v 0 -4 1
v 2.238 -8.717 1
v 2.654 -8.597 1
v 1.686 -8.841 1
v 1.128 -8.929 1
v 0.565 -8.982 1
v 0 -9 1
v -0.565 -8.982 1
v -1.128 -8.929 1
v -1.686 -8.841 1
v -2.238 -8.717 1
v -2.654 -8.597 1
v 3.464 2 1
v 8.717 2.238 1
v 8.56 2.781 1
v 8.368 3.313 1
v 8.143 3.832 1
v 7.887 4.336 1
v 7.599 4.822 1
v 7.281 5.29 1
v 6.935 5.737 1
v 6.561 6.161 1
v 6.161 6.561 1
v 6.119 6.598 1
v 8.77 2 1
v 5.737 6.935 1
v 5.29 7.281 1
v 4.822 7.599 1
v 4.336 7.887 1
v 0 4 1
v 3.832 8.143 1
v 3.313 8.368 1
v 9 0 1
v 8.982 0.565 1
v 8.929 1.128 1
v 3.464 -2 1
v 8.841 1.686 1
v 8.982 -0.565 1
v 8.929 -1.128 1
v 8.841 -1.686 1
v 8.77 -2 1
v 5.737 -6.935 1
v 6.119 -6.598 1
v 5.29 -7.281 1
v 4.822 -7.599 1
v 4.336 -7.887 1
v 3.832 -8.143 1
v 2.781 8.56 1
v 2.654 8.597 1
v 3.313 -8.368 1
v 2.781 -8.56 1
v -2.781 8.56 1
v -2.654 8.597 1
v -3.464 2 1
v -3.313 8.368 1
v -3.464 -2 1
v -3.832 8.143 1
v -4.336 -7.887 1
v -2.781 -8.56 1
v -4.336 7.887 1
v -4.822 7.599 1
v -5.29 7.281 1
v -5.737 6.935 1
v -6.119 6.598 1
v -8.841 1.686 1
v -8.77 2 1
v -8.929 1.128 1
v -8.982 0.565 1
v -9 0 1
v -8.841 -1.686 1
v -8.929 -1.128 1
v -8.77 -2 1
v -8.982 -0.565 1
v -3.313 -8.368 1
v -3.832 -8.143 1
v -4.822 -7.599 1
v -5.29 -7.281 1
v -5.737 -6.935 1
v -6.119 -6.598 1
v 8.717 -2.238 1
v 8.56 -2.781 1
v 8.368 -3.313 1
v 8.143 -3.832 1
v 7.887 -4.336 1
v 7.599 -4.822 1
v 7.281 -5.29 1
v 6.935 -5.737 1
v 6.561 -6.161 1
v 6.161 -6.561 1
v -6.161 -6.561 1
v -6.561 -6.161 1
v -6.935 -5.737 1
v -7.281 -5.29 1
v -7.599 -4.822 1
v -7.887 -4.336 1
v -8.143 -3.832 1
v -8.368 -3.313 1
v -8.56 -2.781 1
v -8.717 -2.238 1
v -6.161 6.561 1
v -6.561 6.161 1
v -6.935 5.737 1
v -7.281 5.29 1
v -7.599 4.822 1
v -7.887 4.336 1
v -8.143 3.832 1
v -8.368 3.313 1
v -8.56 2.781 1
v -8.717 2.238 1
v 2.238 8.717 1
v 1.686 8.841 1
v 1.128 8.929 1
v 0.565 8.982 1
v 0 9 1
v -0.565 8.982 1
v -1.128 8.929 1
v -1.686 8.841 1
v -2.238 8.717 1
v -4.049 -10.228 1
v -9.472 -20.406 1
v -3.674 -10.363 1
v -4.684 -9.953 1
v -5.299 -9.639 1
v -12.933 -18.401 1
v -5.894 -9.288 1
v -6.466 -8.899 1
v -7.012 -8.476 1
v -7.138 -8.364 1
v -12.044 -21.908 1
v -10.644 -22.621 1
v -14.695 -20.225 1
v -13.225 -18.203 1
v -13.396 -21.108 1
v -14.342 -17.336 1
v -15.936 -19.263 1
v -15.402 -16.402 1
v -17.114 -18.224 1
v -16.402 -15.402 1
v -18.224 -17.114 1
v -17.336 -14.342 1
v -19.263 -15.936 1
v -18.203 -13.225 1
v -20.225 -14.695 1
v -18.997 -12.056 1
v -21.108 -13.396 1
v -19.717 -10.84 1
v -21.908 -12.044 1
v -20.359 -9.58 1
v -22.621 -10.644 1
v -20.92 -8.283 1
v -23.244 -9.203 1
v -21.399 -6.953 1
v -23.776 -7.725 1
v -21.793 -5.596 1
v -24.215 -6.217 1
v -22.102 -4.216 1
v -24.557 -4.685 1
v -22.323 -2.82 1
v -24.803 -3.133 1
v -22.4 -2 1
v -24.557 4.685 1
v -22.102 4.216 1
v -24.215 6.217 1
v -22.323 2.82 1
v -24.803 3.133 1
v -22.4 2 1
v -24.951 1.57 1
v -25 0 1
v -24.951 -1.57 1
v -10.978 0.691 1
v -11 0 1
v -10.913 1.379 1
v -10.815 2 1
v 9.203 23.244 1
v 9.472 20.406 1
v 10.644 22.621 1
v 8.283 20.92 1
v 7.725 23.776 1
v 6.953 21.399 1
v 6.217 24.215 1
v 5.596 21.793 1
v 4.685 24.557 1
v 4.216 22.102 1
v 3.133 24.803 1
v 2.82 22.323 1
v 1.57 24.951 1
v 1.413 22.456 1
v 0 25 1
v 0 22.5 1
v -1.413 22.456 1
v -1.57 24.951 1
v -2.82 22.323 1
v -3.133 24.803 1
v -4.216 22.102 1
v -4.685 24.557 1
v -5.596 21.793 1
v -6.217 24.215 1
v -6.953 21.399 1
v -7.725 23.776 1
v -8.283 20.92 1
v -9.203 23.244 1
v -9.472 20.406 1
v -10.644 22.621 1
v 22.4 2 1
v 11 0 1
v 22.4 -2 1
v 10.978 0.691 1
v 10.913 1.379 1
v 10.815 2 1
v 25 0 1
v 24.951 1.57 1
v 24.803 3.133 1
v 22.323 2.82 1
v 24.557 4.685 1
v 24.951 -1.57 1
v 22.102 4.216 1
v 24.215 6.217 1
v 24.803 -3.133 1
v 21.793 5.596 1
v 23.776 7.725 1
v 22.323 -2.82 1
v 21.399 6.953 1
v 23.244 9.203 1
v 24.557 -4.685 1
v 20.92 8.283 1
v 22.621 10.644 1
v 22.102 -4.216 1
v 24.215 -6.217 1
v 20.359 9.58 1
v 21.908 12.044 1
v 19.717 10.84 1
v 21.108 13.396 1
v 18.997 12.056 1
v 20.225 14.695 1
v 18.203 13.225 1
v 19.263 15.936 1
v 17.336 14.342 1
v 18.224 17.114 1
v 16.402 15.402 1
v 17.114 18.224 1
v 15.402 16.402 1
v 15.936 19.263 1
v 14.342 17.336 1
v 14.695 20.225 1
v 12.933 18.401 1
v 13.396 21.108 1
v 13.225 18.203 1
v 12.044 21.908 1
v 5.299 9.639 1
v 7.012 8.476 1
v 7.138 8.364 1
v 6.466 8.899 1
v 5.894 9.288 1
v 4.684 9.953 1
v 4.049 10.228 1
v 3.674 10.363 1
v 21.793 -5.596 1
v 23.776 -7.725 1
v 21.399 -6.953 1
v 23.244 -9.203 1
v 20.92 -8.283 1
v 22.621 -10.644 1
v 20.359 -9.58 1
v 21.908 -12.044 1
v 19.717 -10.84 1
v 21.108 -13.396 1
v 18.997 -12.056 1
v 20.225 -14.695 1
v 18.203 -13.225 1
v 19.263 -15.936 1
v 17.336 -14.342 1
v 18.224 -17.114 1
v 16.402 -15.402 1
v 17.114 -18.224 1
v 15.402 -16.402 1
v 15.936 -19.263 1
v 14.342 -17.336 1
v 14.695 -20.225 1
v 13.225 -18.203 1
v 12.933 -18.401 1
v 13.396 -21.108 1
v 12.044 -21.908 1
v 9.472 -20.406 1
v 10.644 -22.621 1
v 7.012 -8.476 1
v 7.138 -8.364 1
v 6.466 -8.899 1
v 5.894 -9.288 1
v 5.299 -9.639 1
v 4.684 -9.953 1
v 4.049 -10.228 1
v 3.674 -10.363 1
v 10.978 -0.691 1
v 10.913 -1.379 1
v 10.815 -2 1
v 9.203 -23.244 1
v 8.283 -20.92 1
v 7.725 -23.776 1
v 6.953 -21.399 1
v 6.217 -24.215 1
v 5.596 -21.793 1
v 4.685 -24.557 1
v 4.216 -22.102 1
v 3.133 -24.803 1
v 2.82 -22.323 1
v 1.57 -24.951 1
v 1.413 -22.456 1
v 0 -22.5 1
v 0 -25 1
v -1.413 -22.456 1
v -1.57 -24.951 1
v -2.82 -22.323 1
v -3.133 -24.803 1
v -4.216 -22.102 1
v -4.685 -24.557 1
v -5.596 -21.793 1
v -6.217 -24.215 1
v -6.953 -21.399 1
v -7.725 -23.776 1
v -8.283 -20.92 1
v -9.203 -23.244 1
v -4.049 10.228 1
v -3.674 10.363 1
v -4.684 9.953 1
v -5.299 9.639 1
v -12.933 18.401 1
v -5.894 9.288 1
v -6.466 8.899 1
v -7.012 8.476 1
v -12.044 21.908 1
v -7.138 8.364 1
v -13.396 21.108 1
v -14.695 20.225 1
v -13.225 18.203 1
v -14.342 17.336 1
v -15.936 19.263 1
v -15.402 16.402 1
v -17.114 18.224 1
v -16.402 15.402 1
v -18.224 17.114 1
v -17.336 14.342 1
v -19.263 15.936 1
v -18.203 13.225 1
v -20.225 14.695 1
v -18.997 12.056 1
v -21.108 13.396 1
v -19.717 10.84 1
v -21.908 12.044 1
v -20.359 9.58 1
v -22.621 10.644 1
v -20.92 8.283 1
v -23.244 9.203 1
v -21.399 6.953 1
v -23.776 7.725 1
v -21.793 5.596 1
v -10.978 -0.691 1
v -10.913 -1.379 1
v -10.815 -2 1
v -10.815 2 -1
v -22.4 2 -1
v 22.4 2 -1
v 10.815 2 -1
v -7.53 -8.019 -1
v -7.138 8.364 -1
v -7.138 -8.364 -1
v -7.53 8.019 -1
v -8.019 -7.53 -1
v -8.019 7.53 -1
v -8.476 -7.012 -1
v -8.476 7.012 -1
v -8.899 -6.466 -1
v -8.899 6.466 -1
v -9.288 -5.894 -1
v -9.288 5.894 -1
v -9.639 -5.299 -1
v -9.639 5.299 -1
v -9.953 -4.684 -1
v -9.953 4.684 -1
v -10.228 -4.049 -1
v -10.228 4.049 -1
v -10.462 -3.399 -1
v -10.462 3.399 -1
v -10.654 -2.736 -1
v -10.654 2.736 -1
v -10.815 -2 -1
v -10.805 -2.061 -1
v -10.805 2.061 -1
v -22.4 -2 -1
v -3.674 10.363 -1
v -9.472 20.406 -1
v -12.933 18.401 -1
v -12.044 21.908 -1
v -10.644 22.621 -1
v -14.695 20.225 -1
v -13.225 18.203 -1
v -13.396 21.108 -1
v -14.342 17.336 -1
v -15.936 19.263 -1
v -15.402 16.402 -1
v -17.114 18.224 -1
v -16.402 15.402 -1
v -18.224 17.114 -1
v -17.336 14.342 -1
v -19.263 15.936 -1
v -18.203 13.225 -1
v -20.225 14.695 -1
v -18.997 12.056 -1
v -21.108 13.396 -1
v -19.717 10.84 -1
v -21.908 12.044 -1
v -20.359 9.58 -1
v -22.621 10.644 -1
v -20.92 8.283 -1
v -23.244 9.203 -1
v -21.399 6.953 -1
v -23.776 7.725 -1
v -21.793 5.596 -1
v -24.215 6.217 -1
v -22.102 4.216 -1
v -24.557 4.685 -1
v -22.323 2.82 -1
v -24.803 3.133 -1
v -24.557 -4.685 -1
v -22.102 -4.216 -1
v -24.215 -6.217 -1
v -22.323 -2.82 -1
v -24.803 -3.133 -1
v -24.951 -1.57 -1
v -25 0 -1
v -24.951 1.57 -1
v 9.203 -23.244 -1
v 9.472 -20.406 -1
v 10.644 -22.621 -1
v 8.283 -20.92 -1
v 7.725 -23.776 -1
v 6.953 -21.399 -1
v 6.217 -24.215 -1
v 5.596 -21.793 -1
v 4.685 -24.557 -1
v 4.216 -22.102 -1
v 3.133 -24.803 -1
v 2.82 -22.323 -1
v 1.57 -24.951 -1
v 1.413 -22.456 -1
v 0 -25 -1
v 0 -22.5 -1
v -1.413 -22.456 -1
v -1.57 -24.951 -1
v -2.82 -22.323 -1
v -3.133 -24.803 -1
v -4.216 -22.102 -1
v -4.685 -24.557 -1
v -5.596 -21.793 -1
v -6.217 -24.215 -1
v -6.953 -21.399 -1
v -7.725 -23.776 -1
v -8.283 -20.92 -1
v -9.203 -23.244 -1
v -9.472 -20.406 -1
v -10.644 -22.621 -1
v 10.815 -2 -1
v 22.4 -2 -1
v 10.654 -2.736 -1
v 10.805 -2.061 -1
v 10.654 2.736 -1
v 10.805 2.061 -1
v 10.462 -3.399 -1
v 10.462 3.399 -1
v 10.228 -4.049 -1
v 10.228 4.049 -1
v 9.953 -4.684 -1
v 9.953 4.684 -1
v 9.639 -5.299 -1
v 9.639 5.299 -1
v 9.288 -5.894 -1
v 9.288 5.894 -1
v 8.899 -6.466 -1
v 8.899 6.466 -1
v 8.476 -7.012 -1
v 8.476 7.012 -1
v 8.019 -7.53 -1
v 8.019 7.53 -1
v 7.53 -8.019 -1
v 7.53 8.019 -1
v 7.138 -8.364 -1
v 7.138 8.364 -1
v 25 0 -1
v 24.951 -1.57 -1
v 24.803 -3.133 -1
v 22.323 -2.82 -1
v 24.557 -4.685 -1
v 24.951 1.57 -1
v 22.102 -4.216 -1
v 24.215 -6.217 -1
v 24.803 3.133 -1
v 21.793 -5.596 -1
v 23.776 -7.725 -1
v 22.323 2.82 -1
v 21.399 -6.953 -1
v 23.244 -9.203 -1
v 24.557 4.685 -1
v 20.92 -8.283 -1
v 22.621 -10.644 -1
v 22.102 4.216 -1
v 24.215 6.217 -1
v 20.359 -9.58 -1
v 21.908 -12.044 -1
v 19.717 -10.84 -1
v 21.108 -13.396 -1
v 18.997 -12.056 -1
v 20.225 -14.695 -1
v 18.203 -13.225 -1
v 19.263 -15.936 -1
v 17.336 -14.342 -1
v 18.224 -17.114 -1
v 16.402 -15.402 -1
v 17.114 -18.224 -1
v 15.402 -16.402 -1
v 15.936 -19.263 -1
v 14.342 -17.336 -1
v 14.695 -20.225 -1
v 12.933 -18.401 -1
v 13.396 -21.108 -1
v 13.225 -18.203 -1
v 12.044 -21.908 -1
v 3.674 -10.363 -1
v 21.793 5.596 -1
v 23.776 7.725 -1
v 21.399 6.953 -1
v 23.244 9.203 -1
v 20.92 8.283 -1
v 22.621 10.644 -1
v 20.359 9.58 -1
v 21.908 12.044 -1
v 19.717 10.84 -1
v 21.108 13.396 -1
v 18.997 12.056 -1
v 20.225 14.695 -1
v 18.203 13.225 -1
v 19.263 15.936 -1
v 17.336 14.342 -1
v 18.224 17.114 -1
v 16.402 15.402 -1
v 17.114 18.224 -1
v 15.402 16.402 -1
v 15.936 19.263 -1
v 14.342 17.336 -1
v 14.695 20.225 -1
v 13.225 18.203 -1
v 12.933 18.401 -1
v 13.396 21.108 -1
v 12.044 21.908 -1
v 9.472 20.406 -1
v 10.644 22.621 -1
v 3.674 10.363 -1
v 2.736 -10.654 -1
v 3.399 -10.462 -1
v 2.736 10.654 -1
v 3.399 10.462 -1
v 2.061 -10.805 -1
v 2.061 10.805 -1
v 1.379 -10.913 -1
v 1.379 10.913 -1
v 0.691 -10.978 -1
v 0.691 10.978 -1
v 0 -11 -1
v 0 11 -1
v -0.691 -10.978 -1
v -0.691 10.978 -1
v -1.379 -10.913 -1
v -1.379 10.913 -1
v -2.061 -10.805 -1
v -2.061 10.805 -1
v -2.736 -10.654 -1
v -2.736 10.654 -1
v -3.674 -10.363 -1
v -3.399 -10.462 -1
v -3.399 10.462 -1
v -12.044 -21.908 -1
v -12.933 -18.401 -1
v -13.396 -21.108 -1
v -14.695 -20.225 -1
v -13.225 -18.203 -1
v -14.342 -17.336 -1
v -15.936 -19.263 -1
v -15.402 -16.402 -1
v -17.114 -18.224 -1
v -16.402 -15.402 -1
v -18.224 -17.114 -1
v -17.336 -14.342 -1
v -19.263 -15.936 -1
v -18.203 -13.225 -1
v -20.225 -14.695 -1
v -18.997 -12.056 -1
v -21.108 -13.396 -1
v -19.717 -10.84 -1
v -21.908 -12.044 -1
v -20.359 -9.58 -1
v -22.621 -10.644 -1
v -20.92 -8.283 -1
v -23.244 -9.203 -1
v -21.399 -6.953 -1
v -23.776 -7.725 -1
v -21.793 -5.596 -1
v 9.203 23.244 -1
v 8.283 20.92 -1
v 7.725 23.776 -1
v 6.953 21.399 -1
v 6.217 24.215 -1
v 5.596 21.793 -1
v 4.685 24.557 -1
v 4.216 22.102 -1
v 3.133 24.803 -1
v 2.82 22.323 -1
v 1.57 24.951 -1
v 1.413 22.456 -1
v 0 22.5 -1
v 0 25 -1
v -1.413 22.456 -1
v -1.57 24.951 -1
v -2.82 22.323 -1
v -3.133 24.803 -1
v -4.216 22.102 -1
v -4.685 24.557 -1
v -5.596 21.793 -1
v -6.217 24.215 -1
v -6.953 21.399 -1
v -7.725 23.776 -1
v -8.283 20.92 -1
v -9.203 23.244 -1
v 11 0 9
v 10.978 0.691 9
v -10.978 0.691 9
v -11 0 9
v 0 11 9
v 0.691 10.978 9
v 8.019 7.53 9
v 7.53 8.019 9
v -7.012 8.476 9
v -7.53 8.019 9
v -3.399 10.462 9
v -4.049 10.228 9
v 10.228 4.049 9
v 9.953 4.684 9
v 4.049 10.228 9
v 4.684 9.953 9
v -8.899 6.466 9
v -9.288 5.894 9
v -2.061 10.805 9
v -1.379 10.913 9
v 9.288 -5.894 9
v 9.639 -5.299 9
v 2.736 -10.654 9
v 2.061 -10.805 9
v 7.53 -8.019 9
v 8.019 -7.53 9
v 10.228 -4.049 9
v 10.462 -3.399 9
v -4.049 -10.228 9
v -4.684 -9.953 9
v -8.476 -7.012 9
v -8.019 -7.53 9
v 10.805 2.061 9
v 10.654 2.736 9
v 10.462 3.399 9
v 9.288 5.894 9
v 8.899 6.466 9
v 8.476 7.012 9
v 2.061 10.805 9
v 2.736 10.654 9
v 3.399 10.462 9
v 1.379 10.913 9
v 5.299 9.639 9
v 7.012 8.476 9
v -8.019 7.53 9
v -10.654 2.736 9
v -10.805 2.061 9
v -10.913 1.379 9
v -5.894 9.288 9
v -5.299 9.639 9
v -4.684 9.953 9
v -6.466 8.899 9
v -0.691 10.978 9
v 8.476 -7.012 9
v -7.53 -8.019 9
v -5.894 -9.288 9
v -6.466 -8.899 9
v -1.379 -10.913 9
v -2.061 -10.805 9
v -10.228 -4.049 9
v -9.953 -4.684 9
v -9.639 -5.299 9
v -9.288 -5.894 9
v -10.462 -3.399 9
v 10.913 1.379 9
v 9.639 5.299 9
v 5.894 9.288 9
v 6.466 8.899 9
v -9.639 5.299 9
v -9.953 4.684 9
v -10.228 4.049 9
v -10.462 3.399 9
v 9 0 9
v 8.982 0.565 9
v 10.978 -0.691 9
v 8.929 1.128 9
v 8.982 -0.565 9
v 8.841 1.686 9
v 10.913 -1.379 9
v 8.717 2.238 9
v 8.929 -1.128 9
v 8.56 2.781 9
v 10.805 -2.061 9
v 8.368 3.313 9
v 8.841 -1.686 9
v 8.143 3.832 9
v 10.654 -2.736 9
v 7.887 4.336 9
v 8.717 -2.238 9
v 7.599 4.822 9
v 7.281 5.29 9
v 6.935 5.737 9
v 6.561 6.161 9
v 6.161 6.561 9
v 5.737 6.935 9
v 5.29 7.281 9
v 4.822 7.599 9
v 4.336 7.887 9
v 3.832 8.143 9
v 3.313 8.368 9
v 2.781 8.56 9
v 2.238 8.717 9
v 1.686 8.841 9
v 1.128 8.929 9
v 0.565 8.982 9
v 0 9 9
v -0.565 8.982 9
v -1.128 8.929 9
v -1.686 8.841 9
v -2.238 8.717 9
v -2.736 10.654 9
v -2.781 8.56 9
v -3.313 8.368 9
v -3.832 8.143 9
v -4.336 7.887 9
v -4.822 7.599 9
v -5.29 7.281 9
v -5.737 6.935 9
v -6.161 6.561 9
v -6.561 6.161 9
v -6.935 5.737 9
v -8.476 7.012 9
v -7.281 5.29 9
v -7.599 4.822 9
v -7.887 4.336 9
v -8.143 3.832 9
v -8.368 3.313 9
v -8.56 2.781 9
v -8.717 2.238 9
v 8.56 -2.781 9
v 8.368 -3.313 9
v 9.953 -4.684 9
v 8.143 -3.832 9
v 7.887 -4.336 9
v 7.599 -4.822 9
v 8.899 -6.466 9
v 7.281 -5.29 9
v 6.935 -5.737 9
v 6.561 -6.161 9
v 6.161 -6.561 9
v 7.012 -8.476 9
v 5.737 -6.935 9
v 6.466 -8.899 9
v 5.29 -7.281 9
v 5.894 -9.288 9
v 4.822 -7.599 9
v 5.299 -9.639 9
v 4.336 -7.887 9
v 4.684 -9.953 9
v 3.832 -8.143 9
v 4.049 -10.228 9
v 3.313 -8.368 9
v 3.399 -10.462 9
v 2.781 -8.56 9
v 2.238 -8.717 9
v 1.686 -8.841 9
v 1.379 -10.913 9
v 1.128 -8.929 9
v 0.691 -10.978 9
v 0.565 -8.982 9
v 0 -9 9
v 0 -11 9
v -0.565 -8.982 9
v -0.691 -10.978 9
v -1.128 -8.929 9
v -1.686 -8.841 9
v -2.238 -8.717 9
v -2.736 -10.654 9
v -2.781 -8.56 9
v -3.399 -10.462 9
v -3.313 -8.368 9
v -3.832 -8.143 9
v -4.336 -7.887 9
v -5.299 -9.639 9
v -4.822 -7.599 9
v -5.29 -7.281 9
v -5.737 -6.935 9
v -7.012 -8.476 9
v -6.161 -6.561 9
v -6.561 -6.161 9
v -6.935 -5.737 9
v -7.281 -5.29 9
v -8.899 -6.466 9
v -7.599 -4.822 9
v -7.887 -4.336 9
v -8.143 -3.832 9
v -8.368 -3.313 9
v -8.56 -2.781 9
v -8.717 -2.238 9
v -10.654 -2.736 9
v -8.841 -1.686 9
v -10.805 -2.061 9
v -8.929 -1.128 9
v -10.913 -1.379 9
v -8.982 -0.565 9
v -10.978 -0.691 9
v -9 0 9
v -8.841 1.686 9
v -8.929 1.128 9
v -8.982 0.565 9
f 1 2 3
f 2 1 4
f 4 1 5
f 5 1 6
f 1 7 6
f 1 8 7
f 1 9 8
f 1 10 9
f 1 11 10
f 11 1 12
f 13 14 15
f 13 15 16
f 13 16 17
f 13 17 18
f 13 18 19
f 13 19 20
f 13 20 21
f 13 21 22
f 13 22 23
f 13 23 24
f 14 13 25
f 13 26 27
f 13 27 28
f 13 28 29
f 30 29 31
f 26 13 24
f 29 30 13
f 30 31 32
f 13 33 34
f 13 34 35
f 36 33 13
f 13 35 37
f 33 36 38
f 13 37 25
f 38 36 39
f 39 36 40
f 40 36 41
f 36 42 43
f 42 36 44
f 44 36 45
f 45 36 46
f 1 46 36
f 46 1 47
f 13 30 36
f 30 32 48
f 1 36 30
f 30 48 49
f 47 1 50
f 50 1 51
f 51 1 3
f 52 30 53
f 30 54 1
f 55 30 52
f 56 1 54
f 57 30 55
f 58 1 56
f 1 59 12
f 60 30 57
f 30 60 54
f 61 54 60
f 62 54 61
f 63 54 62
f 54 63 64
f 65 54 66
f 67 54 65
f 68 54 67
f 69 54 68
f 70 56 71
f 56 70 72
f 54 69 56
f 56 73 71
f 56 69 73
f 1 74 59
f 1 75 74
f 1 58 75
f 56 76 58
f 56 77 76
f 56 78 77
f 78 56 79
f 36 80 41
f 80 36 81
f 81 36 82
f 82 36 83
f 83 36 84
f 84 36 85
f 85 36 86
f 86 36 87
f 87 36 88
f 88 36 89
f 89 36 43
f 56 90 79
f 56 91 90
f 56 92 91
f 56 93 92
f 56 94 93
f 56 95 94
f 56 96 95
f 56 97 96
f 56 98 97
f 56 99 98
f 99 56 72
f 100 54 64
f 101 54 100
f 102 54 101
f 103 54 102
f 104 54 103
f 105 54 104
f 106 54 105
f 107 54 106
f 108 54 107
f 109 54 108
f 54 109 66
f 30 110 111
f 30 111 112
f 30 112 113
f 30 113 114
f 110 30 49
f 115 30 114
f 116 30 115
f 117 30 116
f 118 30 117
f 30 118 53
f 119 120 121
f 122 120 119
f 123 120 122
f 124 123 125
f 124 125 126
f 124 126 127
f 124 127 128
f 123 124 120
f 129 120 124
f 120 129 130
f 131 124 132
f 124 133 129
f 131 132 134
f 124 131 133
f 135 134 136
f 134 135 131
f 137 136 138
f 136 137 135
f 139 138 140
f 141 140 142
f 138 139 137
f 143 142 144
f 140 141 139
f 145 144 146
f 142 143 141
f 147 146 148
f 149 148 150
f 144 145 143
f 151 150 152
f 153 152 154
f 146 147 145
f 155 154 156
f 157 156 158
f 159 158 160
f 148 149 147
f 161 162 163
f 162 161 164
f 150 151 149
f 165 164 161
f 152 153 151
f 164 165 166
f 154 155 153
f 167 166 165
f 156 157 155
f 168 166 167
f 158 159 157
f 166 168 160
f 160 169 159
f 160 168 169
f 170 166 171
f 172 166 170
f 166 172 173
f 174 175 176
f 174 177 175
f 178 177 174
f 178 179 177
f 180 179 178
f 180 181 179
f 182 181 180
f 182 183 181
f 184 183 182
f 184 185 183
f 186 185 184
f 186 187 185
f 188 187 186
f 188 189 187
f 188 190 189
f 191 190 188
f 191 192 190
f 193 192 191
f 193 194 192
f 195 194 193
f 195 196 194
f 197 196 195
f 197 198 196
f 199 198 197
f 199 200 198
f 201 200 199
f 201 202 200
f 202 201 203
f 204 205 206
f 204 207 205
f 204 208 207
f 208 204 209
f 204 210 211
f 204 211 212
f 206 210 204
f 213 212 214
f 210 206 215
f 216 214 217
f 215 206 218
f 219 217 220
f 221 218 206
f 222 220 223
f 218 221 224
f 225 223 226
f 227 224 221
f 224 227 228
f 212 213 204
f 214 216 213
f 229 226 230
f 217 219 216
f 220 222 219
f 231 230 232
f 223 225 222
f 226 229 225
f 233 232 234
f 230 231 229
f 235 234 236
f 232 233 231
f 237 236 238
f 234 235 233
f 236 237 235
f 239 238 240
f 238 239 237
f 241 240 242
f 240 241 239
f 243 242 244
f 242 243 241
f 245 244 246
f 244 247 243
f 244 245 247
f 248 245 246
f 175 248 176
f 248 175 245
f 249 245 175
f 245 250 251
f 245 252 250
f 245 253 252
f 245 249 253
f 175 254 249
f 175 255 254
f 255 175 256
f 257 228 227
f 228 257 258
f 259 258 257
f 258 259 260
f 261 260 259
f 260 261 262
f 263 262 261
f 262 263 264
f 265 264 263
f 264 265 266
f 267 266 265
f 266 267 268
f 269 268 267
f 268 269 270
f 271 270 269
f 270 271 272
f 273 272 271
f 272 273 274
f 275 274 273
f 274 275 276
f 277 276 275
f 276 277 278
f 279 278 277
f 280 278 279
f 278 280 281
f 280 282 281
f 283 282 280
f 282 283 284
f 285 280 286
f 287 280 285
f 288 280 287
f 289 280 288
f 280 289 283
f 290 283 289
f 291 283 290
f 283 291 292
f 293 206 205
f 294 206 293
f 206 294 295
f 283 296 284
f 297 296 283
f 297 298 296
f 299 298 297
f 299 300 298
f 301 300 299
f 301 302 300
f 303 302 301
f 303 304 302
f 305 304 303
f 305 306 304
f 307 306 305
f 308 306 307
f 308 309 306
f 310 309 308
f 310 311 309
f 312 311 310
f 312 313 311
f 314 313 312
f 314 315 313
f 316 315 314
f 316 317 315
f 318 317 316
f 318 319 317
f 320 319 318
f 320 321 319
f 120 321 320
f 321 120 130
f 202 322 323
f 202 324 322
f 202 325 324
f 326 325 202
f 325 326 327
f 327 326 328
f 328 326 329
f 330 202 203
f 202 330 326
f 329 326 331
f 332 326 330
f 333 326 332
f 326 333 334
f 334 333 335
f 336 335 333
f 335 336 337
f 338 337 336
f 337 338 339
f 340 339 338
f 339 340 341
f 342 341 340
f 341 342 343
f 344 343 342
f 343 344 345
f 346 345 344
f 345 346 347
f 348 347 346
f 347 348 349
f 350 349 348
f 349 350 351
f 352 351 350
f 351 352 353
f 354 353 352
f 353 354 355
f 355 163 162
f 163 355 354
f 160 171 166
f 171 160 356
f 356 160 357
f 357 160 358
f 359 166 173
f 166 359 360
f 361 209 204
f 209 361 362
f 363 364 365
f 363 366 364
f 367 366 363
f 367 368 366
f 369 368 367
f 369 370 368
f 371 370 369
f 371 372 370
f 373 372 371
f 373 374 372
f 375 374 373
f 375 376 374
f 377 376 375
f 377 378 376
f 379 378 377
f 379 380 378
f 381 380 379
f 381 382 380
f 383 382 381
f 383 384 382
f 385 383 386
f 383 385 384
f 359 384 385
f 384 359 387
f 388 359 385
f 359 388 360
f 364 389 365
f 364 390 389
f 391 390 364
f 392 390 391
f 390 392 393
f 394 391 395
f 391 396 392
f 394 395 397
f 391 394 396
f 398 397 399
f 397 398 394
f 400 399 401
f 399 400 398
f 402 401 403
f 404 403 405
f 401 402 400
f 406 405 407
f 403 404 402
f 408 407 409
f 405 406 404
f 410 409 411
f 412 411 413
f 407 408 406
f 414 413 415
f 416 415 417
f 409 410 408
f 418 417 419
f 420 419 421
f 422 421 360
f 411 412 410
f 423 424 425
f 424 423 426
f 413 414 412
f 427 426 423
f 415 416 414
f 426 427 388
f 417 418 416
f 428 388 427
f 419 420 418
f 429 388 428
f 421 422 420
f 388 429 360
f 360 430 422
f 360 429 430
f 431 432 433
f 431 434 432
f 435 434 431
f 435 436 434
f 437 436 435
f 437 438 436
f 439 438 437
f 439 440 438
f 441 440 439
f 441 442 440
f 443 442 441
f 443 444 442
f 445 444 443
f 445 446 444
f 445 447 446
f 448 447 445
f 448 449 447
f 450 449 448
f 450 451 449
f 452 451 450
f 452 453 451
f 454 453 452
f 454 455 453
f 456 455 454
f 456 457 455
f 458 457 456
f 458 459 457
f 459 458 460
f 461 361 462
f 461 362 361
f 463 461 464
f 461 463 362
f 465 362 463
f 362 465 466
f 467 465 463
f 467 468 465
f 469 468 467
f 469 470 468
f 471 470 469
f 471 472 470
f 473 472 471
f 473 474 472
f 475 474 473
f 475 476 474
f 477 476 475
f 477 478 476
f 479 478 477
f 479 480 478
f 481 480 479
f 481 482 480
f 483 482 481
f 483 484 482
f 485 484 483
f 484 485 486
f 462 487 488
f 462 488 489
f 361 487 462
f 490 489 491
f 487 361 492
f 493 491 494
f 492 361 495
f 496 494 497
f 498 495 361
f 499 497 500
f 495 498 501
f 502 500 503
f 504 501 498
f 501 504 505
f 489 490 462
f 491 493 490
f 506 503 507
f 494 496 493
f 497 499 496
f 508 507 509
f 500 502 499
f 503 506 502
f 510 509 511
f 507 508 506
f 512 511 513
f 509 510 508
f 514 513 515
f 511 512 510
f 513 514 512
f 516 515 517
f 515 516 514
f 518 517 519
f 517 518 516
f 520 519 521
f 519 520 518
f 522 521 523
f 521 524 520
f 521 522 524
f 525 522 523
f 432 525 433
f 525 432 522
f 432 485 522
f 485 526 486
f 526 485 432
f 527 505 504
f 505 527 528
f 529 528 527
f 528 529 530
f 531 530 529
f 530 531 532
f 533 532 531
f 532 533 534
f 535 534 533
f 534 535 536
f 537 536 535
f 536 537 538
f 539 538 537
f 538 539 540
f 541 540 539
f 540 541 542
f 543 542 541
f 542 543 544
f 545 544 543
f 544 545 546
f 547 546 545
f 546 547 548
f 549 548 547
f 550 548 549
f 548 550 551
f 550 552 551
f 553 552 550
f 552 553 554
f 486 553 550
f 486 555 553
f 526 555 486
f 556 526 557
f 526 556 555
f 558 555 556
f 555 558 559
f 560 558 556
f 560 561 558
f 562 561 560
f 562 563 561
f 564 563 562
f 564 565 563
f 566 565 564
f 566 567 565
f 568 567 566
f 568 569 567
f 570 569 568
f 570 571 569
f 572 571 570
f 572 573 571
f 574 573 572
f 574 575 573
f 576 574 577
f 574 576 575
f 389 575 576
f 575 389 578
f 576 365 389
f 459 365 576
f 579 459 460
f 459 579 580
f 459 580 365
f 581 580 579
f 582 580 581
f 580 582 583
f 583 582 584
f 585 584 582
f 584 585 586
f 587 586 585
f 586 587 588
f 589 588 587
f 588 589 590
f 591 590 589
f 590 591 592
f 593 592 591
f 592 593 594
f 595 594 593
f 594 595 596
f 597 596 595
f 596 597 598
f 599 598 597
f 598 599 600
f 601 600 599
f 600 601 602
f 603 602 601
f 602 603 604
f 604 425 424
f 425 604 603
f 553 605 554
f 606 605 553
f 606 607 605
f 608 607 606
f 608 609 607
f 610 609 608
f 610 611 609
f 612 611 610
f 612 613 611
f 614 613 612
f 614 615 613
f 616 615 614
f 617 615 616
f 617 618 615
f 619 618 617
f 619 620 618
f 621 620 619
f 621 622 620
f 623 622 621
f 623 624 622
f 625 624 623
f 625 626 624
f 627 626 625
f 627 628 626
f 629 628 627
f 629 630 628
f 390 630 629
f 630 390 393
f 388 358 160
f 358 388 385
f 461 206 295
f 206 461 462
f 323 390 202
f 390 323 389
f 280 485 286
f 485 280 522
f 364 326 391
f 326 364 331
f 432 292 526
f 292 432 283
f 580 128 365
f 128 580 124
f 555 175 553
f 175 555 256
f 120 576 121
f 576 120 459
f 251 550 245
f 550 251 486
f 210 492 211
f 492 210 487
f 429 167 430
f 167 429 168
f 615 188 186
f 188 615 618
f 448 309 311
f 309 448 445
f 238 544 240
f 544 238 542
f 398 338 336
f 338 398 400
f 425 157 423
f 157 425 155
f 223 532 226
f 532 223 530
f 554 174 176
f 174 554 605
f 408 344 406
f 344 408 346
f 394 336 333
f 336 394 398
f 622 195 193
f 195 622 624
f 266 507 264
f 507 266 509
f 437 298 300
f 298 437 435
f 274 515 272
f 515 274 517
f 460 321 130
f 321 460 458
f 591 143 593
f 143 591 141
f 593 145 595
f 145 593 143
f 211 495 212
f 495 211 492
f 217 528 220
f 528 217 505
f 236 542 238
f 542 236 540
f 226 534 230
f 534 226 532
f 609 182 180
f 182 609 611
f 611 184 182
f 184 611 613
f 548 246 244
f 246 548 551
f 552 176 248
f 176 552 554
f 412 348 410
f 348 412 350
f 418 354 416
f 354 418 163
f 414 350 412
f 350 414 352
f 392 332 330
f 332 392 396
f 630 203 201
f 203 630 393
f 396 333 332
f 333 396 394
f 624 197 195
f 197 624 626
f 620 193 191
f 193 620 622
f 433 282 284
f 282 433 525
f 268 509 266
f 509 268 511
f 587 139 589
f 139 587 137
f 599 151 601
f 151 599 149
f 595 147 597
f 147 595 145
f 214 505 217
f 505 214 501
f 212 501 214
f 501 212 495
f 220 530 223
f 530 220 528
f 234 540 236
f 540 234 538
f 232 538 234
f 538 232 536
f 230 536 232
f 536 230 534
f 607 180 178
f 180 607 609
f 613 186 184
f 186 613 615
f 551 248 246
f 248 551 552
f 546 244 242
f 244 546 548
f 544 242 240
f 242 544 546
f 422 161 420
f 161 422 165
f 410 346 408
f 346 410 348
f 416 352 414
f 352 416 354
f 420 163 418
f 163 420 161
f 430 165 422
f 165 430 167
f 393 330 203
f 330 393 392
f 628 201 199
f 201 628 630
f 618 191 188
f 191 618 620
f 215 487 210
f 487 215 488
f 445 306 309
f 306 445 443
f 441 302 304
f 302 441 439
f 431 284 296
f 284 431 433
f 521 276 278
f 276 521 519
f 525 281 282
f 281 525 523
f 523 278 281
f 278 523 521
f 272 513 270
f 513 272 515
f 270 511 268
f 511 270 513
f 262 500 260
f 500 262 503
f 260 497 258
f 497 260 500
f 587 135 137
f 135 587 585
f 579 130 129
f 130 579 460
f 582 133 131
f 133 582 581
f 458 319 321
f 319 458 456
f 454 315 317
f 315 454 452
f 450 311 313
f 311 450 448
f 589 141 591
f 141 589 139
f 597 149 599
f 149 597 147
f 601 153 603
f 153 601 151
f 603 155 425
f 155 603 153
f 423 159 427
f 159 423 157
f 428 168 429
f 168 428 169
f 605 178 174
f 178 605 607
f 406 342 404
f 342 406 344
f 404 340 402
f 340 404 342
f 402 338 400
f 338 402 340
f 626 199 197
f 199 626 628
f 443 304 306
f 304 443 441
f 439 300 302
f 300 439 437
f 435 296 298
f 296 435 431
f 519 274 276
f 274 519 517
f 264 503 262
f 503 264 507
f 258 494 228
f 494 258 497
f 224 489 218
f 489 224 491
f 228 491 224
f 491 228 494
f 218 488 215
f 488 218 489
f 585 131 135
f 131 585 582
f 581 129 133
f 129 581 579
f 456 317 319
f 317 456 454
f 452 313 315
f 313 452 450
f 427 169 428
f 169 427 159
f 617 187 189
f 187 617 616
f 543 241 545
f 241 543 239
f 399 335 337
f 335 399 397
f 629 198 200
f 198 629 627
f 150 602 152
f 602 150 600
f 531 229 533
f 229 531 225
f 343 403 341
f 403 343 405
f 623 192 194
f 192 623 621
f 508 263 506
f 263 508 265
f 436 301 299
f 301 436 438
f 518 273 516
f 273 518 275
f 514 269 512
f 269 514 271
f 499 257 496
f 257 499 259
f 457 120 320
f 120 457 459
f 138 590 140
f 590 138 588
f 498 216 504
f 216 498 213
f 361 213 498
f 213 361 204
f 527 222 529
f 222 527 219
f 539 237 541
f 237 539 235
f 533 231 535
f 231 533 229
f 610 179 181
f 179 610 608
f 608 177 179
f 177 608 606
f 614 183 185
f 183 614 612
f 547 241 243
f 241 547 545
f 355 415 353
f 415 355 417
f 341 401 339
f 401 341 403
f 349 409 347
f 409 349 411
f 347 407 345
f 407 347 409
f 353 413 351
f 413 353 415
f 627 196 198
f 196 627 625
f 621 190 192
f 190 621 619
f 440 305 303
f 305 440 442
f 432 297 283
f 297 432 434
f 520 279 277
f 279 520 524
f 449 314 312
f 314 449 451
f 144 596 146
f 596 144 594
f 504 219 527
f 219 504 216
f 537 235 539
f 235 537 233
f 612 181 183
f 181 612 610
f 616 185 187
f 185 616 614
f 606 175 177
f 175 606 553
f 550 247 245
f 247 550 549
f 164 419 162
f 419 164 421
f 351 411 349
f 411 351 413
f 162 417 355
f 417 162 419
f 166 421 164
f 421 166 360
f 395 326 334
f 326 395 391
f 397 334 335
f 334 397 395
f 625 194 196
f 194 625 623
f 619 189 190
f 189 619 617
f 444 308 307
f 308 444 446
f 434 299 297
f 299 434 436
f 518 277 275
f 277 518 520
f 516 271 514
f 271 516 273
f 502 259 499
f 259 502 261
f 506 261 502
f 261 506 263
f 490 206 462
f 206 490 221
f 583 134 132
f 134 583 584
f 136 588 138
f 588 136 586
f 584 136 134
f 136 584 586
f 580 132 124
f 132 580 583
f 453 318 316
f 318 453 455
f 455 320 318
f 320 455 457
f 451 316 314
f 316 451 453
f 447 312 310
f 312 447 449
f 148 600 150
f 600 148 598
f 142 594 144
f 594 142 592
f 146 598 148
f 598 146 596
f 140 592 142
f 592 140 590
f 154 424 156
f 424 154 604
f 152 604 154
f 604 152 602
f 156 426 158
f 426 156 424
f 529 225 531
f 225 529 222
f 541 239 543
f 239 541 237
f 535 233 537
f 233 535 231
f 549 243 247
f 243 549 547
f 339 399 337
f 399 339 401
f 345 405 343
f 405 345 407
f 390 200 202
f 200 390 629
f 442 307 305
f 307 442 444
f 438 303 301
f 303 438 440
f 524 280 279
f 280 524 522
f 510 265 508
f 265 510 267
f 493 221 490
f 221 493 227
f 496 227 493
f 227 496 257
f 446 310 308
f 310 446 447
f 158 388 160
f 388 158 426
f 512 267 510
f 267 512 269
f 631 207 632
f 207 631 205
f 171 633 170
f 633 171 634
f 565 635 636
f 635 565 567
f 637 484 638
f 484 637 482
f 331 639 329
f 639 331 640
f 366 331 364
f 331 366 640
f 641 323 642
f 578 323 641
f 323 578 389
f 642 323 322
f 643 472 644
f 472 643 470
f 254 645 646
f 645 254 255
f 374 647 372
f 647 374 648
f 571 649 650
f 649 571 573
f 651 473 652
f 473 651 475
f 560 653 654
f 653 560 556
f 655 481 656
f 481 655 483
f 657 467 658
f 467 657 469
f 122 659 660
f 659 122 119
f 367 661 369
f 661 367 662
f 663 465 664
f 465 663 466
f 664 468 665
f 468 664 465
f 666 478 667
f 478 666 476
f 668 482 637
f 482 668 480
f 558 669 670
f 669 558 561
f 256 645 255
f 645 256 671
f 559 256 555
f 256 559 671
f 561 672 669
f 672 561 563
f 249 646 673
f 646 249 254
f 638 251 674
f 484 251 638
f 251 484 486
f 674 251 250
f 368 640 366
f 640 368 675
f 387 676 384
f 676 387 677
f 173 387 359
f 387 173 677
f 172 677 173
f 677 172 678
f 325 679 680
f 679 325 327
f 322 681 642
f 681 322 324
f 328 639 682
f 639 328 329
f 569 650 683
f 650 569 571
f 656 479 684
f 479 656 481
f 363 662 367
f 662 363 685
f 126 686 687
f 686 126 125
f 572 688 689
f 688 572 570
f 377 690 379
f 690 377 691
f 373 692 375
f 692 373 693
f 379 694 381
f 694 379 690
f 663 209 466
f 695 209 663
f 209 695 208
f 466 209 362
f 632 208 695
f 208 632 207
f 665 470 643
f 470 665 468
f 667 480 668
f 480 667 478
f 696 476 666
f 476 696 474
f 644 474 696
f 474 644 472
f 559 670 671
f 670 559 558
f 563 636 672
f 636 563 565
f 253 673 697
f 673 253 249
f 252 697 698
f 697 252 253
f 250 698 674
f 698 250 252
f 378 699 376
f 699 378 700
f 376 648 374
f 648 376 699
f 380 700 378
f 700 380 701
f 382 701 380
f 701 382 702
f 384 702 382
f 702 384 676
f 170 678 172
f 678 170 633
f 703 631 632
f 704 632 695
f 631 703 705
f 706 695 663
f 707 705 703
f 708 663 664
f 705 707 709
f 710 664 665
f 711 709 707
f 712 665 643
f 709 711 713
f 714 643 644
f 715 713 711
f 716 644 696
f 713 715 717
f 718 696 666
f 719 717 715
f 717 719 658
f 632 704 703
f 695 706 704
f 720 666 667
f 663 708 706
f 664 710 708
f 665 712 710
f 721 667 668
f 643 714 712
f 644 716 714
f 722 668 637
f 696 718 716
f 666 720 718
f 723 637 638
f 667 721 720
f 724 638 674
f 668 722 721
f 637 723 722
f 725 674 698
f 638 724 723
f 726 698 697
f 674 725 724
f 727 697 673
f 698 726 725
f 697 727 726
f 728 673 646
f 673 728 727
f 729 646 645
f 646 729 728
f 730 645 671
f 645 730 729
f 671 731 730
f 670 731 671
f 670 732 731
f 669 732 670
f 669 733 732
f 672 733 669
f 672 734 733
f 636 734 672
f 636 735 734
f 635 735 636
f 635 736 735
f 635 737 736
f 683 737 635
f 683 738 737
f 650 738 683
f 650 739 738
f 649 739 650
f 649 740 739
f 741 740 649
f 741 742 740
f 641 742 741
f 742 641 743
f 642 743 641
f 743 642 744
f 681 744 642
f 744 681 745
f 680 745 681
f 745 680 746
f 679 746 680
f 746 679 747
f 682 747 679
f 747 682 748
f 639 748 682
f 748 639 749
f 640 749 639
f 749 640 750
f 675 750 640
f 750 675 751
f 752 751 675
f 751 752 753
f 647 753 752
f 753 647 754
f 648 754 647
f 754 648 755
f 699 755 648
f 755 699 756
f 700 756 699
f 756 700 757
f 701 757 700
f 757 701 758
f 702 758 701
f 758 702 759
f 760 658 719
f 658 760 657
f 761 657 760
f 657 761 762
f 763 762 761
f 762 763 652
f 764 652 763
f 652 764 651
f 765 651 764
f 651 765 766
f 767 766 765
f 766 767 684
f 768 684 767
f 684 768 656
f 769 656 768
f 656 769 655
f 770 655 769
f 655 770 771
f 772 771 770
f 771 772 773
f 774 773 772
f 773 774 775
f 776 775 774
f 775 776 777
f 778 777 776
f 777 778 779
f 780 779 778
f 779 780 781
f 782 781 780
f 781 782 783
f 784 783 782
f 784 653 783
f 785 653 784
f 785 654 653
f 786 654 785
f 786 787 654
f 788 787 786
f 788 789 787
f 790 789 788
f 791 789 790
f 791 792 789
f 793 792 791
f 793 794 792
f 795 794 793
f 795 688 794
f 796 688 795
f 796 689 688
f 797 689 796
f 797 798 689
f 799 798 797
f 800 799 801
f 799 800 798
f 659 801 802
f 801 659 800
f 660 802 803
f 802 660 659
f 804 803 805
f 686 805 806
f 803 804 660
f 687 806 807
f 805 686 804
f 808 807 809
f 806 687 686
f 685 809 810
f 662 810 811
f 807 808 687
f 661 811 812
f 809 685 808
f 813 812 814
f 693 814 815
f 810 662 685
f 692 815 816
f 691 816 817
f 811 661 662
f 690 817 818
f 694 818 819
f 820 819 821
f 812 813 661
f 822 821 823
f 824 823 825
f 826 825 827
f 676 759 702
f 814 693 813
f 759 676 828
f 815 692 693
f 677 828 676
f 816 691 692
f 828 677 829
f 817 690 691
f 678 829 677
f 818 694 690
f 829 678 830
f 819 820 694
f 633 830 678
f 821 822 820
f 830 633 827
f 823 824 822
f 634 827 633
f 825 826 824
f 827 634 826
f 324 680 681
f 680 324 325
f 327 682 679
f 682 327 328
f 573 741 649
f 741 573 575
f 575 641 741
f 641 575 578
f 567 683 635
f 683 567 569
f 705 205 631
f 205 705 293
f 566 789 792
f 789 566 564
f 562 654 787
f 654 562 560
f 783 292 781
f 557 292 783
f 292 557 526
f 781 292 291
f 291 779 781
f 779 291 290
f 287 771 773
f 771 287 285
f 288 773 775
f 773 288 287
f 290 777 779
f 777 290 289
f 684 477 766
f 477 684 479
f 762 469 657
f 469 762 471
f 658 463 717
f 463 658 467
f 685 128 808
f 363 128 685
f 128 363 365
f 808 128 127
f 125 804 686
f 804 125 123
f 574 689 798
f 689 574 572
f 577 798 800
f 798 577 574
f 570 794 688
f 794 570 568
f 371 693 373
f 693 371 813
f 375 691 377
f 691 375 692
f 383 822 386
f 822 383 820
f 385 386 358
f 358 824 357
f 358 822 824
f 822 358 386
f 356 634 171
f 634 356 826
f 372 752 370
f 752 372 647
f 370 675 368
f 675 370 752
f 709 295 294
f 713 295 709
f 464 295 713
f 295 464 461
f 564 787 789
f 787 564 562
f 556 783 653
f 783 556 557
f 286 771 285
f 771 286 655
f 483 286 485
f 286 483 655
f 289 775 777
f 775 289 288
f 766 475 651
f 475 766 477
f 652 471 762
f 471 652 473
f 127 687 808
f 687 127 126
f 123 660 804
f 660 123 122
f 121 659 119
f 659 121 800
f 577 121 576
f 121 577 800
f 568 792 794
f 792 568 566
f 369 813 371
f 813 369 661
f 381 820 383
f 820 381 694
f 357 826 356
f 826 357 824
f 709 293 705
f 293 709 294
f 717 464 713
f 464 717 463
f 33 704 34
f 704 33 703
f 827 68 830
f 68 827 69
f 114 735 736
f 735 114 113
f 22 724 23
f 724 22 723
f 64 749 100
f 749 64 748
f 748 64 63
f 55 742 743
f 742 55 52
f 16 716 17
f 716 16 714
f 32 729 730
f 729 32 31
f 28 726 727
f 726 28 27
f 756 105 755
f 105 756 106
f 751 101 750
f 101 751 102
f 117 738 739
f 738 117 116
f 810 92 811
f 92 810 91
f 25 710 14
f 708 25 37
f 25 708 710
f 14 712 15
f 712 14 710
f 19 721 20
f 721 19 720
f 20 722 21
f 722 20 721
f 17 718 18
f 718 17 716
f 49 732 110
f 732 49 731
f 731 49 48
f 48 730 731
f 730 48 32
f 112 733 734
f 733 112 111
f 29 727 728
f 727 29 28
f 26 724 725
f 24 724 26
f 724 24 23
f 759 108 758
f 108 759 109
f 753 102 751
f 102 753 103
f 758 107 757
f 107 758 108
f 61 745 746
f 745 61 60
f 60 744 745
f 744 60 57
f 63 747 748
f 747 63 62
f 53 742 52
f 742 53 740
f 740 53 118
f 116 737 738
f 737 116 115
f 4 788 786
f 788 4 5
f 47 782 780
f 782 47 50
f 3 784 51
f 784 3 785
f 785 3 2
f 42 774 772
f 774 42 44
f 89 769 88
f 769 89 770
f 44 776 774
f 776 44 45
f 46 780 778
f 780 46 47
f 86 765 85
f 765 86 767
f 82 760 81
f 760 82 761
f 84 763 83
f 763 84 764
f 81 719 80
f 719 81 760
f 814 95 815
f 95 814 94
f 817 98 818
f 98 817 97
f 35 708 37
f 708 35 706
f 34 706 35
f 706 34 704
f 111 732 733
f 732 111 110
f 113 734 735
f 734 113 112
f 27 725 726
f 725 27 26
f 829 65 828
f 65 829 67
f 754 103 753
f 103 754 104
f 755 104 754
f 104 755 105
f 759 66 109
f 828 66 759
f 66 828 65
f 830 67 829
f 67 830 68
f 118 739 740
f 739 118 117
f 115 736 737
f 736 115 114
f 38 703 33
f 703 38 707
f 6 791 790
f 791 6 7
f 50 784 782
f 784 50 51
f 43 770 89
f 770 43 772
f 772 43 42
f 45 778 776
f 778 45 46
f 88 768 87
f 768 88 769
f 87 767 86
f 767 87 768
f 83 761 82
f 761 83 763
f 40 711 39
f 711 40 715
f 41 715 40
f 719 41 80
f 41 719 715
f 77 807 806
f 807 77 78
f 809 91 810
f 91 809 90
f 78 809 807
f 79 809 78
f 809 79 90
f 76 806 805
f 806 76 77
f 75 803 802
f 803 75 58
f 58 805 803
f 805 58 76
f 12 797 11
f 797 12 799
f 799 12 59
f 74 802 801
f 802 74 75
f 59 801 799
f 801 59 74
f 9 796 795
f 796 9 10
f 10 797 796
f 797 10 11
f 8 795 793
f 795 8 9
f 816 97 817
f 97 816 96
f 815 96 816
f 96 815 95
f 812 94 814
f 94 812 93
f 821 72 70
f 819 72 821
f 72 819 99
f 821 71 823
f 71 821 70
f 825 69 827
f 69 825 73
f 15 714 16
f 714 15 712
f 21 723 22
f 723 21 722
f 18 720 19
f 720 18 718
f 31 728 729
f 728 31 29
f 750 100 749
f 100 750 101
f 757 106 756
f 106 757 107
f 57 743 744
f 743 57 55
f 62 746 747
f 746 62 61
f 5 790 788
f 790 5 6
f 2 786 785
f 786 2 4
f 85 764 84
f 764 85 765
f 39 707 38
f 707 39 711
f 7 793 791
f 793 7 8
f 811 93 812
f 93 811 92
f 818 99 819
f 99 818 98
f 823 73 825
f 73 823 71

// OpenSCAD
time = 0;
D = 55;

module minolta16_tank_reel_top (DEBUG = false) {
    $fn = 100;
    //under lattuce
    for (i = [0 : 3]) {
         rotate([0, 0, i * (360 / 3)]) cube([D - 5.5, 4, 2], center = true);
    }  
    difference () {
    	cylinder(r = (D / 2) - 2.5, h = 2, center = true);
        translate([0, 0, 0]) cylinder(r = (D / 2) - 5, h = 2 + 1, center = true);
        if (DEBUG){
            translate([(D + 10) / 2, 0, 0]) cube([D + 10, D + 10, D + 10], center = true);
        }
  	}
    translate([0, 0, 4]) difference () {
    	cylinder(r = 11, h = 10, center = true);
        translate([0, 0, 2]) cylinder(r = 11 - 2, h = 10, center = true);
        if (DEBUG){
            translate([(D + 10) / 2, 0, 0]) cube([D + 10, D + 10, D + 10], center = true);
        }
  	}           
}

rotate([0, 0, time]) minolta16_tank_reel_top();
